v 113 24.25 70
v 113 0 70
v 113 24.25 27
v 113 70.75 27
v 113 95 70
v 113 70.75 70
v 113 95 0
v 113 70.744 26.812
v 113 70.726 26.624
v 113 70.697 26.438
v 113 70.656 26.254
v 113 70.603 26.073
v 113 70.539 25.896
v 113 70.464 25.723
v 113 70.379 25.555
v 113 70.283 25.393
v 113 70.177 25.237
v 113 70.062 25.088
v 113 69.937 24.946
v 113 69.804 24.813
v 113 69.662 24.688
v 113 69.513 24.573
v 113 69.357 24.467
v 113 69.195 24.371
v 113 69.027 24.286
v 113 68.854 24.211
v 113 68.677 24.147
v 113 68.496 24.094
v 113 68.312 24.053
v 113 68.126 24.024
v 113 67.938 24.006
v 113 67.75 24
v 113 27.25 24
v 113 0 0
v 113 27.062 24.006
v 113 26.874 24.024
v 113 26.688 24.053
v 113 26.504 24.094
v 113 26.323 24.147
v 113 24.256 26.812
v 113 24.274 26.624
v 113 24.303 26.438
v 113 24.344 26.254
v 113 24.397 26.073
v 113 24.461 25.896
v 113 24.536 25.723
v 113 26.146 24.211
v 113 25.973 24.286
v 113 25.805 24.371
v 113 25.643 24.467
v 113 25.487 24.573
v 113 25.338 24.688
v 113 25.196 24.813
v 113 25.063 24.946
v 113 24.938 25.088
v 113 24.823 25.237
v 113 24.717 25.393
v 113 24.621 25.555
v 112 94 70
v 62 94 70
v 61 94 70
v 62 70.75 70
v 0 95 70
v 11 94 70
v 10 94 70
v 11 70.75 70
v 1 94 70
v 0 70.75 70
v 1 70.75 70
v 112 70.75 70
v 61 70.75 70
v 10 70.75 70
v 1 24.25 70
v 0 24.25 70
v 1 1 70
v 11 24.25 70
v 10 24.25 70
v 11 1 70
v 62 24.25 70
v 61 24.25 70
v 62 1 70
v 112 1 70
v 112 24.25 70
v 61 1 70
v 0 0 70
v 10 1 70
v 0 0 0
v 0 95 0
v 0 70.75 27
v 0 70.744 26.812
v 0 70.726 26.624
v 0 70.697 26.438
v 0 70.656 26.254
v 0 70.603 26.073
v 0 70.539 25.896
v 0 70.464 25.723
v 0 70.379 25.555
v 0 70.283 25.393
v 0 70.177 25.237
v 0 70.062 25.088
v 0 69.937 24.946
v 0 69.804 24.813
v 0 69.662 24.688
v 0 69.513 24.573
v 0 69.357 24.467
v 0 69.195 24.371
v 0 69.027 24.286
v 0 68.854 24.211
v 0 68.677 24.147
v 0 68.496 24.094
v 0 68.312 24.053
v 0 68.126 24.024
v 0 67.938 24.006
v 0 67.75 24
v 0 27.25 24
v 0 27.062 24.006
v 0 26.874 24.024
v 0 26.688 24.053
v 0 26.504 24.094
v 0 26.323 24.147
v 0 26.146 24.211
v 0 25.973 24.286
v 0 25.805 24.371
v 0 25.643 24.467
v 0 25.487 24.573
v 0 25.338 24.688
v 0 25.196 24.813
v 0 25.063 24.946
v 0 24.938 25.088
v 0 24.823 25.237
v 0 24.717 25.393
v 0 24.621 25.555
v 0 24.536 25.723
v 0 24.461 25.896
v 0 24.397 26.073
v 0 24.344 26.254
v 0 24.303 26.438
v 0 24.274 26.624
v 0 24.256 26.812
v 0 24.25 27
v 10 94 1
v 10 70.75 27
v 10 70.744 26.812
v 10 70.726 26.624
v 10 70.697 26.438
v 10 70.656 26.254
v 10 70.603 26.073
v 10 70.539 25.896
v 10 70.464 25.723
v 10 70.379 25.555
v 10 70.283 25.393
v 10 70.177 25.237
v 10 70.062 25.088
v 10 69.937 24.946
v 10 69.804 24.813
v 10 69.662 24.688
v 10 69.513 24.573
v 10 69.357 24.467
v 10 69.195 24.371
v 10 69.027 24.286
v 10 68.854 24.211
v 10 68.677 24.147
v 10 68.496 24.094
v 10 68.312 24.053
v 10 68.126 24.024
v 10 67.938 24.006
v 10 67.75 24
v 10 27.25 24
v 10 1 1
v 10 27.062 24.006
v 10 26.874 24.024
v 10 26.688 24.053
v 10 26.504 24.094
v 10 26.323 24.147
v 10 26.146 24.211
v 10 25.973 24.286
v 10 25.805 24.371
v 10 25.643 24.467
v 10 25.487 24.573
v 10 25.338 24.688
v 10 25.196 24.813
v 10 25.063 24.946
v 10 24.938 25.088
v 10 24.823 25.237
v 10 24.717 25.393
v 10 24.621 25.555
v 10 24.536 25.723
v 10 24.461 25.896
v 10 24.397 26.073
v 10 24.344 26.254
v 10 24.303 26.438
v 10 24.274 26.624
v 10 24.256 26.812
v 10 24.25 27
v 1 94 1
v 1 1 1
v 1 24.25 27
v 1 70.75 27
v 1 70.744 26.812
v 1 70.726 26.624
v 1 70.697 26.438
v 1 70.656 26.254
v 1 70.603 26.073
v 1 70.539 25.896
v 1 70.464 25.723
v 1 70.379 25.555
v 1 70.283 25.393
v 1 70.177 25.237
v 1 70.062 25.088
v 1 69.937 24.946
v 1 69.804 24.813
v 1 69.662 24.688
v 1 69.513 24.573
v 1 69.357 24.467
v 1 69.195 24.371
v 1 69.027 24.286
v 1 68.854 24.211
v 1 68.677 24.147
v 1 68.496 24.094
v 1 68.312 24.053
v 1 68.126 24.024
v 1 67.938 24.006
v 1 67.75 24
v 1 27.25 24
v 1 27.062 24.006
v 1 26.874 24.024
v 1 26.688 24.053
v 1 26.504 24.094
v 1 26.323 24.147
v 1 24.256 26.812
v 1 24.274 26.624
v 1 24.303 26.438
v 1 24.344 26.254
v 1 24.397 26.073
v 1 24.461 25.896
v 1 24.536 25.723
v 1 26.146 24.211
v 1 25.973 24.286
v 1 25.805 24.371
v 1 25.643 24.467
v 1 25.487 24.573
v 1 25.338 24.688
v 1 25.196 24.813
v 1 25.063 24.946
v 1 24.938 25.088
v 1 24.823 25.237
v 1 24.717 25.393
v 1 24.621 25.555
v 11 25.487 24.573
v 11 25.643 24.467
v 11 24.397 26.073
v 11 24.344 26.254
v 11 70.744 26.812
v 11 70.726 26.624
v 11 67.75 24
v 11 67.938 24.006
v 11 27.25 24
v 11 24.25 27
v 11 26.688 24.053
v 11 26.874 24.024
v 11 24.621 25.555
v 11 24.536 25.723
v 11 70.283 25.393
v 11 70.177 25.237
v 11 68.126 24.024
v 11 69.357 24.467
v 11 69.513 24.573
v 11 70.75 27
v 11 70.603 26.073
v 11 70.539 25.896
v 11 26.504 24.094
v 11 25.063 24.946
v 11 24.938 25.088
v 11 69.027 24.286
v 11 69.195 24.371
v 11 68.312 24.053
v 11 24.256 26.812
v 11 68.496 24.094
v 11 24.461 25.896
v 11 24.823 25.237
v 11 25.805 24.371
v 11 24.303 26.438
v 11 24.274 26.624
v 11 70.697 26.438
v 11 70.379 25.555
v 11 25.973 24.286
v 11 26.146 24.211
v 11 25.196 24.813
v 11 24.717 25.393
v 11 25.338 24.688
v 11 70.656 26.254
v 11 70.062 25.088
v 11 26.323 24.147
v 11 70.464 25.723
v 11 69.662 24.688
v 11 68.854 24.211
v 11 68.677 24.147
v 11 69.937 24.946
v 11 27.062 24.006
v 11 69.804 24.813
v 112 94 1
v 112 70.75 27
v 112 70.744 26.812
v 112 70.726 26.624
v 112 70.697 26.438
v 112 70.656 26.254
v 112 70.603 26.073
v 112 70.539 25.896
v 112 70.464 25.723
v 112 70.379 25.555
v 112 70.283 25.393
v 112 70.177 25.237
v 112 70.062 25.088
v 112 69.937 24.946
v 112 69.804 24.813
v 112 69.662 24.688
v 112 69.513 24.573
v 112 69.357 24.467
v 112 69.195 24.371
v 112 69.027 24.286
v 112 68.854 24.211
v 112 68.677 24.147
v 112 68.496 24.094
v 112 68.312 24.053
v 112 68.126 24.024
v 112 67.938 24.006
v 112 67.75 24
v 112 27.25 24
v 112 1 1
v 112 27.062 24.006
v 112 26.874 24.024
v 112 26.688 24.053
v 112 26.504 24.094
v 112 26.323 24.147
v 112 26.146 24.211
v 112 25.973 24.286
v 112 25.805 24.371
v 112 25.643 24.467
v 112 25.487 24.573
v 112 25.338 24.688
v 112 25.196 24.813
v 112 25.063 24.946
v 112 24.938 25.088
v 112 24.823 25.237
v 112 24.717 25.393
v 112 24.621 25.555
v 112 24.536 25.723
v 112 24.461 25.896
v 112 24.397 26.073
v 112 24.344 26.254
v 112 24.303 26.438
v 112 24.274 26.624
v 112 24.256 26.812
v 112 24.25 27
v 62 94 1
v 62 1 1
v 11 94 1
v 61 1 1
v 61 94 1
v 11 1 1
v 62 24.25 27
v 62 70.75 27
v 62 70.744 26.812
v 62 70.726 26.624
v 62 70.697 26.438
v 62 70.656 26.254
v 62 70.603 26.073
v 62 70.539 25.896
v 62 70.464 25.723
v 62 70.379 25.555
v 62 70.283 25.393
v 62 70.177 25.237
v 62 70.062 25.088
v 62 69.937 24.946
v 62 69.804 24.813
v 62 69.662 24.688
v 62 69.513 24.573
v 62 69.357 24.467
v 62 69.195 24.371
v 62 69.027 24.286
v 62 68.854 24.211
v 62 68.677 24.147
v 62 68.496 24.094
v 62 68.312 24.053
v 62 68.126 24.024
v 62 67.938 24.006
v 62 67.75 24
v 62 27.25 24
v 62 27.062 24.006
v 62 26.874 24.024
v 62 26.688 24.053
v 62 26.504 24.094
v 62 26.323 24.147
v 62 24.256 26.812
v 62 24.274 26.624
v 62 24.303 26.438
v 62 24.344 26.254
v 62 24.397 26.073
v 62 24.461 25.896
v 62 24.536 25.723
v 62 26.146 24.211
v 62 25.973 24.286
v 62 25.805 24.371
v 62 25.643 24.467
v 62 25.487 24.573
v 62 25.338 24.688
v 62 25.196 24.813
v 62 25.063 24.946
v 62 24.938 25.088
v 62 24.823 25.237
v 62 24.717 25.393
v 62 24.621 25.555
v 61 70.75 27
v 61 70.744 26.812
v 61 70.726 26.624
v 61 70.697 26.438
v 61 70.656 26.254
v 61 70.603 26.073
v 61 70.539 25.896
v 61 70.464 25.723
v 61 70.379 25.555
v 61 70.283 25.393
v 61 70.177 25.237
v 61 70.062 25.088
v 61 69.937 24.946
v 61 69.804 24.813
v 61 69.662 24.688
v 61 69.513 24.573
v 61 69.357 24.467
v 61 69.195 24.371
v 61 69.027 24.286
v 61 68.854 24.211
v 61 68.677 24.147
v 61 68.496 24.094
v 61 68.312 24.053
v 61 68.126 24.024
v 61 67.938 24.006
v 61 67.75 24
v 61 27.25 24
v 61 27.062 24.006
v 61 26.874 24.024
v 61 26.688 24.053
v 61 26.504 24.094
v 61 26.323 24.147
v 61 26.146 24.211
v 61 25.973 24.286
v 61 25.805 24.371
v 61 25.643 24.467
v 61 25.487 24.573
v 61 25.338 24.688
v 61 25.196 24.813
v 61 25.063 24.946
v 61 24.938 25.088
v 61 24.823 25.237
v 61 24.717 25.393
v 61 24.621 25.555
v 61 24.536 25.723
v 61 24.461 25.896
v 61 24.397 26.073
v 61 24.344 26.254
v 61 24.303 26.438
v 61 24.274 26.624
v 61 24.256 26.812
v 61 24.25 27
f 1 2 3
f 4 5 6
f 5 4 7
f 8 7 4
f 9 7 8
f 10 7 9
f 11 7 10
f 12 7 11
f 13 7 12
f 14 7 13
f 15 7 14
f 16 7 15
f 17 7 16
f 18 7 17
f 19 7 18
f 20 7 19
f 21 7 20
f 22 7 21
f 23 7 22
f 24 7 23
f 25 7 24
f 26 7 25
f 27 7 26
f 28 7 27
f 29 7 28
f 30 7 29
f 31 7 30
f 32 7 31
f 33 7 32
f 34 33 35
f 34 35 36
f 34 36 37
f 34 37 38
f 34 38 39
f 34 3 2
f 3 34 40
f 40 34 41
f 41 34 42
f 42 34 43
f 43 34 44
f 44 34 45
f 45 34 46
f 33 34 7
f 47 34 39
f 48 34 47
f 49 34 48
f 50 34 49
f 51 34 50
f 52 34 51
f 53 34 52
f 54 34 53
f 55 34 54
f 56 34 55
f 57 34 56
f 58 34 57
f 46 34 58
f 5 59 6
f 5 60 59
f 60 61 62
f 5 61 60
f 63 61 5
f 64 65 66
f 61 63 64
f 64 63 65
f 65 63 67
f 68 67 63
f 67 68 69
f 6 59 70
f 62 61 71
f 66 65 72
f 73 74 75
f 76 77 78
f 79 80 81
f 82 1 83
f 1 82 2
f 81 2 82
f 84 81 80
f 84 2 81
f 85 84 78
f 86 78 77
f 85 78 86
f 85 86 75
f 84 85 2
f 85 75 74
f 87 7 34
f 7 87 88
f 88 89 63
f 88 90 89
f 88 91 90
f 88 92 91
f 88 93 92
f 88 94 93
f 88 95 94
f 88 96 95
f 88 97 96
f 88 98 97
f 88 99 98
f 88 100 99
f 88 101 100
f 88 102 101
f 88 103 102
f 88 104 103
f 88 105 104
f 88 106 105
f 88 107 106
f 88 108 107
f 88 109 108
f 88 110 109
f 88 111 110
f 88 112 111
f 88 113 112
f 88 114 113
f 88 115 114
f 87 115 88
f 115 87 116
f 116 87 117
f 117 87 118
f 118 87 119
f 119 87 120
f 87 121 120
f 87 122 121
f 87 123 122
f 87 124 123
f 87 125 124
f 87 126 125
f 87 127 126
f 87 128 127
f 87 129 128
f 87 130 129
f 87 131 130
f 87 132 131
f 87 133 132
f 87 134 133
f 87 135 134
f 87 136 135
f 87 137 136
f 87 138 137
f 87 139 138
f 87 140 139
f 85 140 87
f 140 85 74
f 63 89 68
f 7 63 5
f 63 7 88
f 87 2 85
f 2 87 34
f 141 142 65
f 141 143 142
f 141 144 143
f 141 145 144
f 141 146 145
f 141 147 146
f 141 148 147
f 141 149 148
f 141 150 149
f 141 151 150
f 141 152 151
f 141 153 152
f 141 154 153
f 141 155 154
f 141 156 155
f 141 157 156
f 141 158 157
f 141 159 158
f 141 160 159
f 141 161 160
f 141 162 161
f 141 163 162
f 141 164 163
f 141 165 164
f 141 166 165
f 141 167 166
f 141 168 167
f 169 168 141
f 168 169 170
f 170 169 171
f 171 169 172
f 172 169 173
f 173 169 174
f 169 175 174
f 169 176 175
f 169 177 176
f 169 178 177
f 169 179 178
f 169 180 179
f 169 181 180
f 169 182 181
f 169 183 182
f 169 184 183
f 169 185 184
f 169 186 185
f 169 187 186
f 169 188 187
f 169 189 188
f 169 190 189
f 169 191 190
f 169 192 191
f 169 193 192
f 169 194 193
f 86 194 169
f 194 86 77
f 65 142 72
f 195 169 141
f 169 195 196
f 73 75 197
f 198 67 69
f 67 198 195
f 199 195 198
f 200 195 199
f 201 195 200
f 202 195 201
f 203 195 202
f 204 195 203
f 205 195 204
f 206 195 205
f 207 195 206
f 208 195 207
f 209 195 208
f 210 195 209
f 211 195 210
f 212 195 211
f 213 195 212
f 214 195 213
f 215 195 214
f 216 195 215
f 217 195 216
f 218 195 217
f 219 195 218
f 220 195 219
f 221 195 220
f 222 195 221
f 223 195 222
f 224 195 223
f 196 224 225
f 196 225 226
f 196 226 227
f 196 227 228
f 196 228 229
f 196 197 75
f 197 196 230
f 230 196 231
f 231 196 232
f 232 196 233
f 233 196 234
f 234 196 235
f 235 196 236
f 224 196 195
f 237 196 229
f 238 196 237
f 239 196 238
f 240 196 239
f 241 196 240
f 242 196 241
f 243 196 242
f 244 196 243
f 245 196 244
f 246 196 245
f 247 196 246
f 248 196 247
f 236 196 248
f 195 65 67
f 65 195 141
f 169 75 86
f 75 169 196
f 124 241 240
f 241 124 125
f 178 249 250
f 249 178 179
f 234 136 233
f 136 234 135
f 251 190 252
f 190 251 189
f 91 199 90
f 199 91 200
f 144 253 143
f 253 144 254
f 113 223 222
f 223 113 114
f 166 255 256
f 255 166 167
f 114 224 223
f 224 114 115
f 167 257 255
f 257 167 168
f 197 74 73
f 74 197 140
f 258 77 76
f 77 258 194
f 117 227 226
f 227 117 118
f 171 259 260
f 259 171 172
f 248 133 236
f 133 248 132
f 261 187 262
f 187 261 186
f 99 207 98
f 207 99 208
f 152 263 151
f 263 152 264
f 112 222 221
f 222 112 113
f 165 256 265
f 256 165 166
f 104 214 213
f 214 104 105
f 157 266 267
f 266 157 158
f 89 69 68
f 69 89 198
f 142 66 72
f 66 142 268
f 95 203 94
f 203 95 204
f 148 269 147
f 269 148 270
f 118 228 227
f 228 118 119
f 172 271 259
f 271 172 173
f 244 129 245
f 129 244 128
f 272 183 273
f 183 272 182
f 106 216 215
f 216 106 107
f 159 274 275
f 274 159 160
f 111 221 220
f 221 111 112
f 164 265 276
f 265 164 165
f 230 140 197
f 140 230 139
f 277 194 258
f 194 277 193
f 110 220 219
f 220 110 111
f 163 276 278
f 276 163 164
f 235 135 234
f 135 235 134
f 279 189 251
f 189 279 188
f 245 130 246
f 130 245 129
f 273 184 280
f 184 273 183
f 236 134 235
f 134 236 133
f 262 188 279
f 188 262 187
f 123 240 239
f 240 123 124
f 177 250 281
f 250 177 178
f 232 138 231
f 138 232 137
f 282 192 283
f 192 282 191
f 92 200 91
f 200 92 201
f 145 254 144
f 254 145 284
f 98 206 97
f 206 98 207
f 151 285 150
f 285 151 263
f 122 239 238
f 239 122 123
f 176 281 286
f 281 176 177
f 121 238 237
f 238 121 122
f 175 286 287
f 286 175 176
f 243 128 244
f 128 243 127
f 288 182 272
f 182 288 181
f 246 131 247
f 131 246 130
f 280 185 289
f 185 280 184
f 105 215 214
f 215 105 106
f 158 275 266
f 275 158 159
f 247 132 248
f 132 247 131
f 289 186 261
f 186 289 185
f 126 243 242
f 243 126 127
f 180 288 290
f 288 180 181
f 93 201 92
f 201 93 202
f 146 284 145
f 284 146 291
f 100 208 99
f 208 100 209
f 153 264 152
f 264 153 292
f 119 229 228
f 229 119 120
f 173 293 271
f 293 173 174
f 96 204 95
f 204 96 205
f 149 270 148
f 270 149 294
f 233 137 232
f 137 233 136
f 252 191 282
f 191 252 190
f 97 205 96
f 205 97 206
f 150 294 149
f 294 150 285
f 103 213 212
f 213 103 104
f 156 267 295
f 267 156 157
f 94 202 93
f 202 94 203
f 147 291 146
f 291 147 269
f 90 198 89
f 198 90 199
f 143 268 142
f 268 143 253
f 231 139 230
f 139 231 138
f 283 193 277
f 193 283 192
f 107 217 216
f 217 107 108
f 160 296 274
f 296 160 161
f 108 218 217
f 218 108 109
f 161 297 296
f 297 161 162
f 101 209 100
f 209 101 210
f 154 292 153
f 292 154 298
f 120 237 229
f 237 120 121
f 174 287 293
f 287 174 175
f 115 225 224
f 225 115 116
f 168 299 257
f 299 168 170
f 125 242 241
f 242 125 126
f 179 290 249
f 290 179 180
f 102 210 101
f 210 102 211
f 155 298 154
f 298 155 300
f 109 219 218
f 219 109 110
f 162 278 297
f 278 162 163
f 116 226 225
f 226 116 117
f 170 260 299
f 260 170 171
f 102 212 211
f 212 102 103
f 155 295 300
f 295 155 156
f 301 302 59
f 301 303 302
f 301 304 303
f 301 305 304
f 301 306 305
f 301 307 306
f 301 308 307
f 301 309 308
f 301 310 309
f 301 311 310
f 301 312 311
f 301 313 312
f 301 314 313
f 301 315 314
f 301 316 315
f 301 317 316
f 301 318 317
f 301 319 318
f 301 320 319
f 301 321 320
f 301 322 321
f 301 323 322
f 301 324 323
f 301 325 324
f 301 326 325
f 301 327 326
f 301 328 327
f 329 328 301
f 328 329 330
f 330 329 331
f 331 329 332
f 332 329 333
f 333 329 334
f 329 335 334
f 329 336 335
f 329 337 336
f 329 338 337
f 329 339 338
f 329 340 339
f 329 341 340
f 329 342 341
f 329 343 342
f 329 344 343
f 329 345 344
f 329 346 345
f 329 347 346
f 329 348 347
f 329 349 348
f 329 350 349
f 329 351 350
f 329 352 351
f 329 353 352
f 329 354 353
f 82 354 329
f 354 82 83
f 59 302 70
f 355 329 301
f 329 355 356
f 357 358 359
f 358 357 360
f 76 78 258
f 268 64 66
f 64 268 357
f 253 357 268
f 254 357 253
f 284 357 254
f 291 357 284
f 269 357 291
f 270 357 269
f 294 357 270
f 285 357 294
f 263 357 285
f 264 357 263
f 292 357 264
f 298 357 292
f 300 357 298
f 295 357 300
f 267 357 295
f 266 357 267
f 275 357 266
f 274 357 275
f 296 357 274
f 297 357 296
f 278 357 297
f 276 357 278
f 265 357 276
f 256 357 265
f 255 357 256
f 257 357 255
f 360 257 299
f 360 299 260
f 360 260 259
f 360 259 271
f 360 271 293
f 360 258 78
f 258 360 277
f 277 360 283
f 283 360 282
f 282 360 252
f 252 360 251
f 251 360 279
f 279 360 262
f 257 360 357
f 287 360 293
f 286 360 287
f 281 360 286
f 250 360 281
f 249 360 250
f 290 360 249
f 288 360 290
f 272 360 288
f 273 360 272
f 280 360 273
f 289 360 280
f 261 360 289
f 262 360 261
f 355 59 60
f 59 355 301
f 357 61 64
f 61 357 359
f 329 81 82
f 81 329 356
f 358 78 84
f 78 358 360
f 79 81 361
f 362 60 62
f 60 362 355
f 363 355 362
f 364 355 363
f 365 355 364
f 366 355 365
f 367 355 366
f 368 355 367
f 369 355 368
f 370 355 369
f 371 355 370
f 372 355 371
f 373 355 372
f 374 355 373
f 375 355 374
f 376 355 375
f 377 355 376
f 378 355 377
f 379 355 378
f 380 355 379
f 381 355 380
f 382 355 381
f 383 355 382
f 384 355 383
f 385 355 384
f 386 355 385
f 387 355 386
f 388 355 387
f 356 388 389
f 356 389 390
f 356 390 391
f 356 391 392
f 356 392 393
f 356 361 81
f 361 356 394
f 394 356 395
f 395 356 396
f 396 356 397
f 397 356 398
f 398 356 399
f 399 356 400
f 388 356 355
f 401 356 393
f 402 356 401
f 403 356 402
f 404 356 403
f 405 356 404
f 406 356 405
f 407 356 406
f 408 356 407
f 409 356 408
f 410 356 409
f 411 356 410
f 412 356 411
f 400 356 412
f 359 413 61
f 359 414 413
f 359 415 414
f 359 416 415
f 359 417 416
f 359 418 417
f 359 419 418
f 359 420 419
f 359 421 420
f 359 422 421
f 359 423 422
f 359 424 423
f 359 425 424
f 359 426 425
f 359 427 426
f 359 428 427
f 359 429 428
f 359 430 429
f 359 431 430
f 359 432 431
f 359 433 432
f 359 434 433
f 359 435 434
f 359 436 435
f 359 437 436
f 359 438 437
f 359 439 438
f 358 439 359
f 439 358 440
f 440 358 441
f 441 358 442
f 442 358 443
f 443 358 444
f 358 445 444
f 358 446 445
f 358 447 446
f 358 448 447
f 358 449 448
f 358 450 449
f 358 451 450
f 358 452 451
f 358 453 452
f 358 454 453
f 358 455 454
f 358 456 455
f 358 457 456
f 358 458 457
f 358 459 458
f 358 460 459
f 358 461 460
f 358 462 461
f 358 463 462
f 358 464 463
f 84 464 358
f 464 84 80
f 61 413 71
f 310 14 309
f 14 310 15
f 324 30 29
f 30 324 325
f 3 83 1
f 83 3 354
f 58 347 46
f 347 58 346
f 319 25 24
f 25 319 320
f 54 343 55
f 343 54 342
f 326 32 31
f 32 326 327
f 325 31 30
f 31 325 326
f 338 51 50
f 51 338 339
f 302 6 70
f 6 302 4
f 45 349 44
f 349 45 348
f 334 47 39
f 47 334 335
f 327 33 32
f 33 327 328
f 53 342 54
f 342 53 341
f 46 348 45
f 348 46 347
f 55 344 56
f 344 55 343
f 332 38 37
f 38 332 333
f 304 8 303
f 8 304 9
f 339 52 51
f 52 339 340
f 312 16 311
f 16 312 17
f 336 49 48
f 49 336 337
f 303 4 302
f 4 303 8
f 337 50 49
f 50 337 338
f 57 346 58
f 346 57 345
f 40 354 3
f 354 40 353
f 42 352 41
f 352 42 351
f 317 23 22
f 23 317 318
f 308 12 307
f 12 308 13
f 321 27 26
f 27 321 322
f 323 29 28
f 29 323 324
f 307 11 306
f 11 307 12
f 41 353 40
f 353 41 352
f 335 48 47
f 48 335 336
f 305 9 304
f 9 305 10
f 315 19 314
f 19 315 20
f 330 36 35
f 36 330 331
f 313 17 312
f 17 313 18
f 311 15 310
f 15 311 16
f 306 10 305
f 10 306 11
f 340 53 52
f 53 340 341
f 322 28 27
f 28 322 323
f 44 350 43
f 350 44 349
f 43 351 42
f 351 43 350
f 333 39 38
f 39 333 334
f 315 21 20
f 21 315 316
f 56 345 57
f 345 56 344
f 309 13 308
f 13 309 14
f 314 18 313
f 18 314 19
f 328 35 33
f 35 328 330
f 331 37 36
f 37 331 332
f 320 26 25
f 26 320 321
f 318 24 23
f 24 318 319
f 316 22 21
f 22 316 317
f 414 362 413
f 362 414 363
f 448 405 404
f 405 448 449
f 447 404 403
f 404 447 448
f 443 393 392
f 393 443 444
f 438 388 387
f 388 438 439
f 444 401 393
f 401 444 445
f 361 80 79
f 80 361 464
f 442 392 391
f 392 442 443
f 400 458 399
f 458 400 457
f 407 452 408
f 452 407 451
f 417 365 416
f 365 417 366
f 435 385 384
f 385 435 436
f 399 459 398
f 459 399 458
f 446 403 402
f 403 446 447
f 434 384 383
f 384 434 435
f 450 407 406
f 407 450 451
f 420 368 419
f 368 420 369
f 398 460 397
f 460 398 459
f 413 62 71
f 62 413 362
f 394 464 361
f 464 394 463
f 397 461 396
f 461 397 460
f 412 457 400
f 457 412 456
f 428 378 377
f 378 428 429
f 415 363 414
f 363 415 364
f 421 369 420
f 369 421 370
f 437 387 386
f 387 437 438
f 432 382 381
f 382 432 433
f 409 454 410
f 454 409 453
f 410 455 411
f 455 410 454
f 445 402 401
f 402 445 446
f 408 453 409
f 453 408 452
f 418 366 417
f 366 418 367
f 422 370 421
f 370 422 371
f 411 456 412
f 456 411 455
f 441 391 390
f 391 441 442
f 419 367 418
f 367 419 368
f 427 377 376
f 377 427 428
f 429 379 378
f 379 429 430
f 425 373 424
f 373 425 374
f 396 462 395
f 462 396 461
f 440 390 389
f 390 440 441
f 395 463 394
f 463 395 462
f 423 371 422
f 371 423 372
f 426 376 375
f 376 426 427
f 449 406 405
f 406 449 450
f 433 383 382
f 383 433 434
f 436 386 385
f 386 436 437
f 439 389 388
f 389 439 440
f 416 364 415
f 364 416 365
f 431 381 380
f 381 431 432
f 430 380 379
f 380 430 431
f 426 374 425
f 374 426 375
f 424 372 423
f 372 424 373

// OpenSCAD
include <boardgame_insert_toolkit_lib.2.scad>;

// determines whether lids are output.
g_b_print_lid = true;

// determines whether boxes are output.
g_b_print_box = true; 

// Focus on one box
g_isolated_print_box = ""; 

// Used to visualize how all of the boxes fit together. 
g_b_visualization = false;          
        
// this is the outer wall thickness. 
//Default = 1.5mm
g_wall_thickness = 1.0;

// The tolerance value is extra space put between planes of the lid and box that fit together.
// Increase the tolerance to loosen the fit and decrease it to tighten it.
//
// Note that the tolerance is applied exclusively to the lid.
// So if the lid is too tight or too loose, change this value ( up for looser fit, down for tighter fit ) and 
// you only need to reprint the lid.
// 
// The exception is the stackable box, where the bottom of the box is the lid of the box below,
// in which case the tolerance also affects that box bottom.
//
g_tolerance = 0.15;

// This adjusts the position of the lid detents downward. 
// The larger the value, the bigger the gap between the lid and the box.
g_tolerance_detents_pos = 0.1;

aw_wall_thickness = 1.0;

aw_action_major_cards_size = 9;
//aw_parent_exp_cards_size = 8;
aw_a_cards_size = 50;
aw_b_cards_size = 50;
//aw_c_cards_size = 50;
//aw_d_cards_size = 50;
//aw_fotm_cards_size = 42;

// Total cards size 268
// 113
aw_size_x =
  aw_wall_thickness + // 1
  aw_action_major_cards_size + // 9
  aw_wall_thickness + // 1
  aw_a_cards_size + // 50
  aw_wall_thickness + // 1
  aw_b_cards_size + // 50
  aw_wall_thickness; // 1

aw_size_y = 95.0;
aw_size_z = 70.0;


aw_cutout_height_pct = 60;

data =
  [
    [
      "simple box",
      [
        [ BOX_SIZE_XYZ, [aw_size_x, aw_size_y, aw_size_z] ],
        [ BOX_NO_LID_B, t],
        // Action/Major cards
        [
          BOX_COMPONENT,
          [
            [
              CMP_COMPARTMENT_SIZE_XYZ,
              [
                aw_action_major_cards_size,
                aw_size_y - 2 * aw_wall_thickness,
                aw_size_z - aw_wall_thickness
              ]
            ],
            [ CMP_CUTOUT_SIDES_4B, [ f, f, t, t ] ],
            [ CMP_CUTOUT_HEIGHT_PCT, aw_cutout_height_pct ],
            [ CMP_CUTOUT_DEPTH_PCT, 0 ],
            [CMP_NUM_COMPARTMENTS_XY, [1, 1]],
            [POSITION_XY, [0, CENTER]]
          ]
        ],
        // A/B deck cards
        [
          BOX_COMPONENT,
          [
            [
              CMP_COMPARTMENT_SIZE_XYZ,
              [
                aw_a_cards_size,
                aw_size_y - 2 * aw_wall_thickness,
                aw_size_z - aw_wall_thickness
              ]
            ],
            [ CMP_CUTOUT_SIDES_4B, [ f, f, t, t ] ],
            [ CMP_CUTOUT_HEIGHT_PCT, aw_cutout_height_pct ],
            [ CMP_CUTOUT_DEPTH_PCT, 0 ],
            [CMP_NUM_COMPARTMENTS_XY, [2, 1]],
            [
              POSITION_XY,
              [
                aw_action_major_cards_size +
                aw_wall_thickness,
                CENTER
              ]
            ]
          ]
        ],
      ]
    ]
  ];

MakeAll();
